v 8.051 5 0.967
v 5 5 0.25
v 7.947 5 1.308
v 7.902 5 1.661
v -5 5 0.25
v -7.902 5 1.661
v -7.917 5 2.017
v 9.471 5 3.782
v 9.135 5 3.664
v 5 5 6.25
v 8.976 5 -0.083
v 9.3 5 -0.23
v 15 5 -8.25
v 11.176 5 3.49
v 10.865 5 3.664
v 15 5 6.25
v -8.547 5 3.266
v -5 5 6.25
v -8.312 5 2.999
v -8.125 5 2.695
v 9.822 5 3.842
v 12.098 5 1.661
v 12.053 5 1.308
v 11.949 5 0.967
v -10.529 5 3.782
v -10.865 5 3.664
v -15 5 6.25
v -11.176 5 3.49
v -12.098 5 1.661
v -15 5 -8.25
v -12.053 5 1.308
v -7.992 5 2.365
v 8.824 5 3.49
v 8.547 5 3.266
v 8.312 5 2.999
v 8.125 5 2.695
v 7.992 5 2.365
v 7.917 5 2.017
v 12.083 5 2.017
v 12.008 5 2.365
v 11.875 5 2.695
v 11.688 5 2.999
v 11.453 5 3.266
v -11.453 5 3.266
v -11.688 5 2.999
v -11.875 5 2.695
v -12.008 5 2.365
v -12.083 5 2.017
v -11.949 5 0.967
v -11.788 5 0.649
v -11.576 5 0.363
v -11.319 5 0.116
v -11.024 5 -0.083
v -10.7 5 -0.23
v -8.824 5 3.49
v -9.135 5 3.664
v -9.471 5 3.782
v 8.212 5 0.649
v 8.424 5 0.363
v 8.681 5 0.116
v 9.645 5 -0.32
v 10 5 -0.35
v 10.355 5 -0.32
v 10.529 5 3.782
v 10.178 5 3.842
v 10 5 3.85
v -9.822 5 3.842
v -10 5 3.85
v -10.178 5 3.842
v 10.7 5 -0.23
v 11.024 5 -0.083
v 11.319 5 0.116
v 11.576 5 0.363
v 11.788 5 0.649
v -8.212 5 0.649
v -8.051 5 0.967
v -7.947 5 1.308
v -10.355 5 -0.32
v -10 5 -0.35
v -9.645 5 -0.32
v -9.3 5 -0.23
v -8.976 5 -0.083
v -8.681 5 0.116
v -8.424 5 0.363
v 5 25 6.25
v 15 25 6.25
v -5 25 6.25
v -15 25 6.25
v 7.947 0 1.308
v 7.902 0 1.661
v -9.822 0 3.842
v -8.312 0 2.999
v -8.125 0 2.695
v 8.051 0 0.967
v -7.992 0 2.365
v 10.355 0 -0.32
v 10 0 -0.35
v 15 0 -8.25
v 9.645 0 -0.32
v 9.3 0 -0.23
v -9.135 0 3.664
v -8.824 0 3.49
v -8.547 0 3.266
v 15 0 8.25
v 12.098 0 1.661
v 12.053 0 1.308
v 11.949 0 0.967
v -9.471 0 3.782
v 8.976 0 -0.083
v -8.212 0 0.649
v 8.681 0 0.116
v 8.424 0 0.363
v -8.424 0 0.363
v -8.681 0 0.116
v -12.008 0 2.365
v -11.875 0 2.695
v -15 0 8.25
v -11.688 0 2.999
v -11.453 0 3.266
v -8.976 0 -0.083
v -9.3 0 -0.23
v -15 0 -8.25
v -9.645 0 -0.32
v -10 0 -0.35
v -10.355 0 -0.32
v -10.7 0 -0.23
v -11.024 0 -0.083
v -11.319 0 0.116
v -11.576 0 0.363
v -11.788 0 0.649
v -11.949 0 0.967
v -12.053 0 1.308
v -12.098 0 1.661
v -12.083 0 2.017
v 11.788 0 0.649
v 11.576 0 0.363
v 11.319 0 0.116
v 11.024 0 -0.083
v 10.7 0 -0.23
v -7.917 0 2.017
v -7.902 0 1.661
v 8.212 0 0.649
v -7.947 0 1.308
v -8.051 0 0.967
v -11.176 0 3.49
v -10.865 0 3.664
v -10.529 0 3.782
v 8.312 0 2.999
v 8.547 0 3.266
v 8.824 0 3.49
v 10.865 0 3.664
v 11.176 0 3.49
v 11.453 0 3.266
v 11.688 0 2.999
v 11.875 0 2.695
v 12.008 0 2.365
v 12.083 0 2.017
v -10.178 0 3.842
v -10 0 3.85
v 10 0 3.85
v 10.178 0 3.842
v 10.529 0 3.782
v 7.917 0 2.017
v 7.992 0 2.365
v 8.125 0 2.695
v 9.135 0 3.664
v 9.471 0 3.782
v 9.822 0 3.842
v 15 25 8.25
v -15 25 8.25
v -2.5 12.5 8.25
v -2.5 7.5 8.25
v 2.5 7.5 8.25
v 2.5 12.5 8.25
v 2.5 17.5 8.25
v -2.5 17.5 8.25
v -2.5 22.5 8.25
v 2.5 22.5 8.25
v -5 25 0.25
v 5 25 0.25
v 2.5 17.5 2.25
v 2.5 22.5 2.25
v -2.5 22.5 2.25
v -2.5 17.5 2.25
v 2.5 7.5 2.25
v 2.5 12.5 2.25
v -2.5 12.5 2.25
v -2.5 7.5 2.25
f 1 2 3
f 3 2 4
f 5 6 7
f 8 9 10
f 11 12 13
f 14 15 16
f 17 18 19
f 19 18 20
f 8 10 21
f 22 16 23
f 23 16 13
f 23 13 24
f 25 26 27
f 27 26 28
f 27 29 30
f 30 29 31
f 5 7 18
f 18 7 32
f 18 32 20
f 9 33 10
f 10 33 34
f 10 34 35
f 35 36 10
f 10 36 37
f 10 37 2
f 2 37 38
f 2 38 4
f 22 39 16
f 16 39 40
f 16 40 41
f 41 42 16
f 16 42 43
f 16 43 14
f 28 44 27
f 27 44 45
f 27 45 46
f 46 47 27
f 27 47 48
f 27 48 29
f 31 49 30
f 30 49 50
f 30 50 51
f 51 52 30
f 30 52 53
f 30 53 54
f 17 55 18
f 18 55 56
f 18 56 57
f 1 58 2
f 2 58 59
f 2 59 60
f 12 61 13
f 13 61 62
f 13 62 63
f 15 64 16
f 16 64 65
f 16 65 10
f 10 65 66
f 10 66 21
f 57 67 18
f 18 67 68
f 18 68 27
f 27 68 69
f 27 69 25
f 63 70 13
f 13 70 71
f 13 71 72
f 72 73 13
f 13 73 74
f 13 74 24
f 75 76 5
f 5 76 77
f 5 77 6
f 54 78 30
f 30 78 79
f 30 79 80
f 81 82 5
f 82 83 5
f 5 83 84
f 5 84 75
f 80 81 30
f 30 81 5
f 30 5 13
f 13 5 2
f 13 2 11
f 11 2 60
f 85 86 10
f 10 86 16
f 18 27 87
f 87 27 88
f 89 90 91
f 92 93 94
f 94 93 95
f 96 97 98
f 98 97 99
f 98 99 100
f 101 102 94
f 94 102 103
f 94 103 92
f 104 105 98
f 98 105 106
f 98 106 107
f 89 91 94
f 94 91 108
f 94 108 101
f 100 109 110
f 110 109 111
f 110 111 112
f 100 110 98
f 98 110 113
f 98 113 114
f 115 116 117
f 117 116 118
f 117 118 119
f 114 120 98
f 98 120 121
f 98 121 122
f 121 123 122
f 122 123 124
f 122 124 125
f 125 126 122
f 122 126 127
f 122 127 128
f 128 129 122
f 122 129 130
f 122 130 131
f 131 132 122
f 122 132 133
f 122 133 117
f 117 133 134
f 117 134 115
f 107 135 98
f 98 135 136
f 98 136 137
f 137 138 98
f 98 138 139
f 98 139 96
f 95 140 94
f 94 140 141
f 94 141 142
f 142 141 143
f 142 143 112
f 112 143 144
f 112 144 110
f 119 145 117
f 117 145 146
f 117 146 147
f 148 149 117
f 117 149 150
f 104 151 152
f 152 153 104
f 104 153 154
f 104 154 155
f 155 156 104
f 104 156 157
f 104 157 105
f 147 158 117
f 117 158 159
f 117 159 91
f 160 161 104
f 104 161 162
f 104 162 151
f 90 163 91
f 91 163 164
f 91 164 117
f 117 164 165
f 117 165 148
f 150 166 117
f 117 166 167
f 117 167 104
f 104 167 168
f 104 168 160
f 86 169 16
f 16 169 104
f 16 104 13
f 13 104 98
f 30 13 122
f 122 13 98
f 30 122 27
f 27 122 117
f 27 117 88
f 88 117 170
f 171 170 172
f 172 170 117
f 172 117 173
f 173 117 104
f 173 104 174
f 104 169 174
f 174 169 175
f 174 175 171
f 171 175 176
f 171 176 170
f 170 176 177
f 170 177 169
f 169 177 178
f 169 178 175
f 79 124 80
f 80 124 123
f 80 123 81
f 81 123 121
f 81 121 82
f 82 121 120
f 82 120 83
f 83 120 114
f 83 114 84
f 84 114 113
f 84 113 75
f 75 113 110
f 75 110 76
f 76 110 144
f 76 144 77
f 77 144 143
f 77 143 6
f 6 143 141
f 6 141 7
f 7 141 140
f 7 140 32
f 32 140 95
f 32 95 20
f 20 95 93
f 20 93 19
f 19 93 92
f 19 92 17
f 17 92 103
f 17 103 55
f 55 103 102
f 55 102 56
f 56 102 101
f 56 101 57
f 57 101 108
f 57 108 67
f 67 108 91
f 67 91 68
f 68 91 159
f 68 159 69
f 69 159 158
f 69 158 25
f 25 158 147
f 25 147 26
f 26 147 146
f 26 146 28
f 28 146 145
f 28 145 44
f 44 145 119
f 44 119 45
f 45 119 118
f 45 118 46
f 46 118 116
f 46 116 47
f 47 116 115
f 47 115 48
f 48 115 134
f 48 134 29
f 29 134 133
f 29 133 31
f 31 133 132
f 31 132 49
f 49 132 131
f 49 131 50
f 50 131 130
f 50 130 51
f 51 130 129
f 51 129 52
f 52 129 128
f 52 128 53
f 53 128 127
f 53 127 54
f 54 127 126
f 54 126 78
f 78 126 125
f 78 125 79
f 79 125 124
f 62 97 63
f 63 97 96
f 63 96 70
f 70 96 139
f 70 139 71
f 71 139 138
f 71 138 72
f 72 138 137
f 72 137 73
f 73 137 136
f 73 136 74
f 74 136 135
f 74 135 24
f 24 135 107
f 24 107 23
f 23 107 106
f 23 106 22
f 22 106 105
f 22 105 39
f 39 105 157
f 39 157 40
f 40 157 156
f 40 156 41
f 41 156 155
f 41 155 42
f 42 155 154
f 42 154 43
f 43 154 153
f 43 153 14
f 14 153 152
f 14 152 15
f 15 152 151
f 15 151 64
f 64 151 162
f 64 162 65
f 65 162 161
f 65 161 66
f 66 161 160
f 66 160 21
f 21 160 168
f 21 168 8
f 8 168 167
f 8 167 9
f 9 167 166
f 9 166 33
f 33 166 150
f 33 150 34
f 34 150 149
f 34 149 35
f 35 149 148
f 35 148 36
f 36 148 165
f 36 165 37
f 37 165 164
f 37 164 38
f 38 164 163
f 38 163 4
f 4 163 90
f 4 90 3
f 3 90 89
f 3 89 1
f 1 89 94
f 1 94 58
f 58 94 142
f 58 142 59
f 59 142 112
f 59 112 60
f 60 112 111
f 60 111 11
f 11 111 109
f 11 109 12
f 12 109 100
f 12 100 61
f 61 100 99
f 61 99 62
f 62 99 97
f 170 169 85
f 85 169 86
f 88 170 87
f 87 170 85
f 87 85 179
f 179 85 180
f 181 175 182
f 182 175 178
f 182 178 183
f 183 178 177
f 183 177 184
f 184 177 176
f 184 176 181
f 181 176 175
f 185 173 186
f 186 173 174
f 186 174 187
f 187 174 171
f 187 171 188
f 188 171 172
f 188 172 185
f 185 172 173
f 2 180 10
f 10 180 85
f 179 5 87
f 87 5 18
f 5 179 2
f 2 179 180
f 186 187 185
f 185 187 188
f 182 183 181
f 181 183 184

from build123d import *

# Parameters (mm, degrees)
SKETCH1_W           = 30
SKETCH1_H           = 16.5
SKETCH1_R           = 2.1
BOSS_EXTRUDE1_DEPTH = 5
SKETCH2_W           = 30
SKETCH2_H           = 20
BOSS_EXTRUDE2_DEPTH = 2
SKETCH3_W           = 5
SKETCH3_H           = 5
CUT_EXTRUDE1_DEPTH  = 3
SKETCH4_W           = 10
SKETCH4_H           = 20
SKETCH4_W_2         = 5
SKETCH4_H_2         = 5
BOSS_EXTRUDE3_DEPTH = 4
SKETCH5_W           = 10
SKETCH5_H           = 20
BOSS_EXTRUDE4_DEPTH = 2


with BuildPart() as part:
    # Sketch1 → Boss-Extrude1 (new body)
    with BuildSketch(Plane(origin=(0, 0, 0), x_dir=(1, 0, 0), z_dir=(0, 1, 0))):
        Rectangle(SKETCH1_W, SKETCH1_H)
        with Locations((-10, -1.75)):
            Circle(SKETCH1_R, mode=Mode.SUBTRACT)
        with Locations((10, -1.75)):
            Circle(SKETCH1_R, mode=Mode.SUBTRACT)
    extrude(amount=BOSS_EXTRUDE1_DEPTH)

    # Sketch2 → Boss-Extrude2 (add)
    with BuildSketch(Plane.XY.offset(8.25)):
        with Locations((0, 15)):
            Rectangle(SKETCH2_W, SKETCH2_H)
    extrude(amount=-BOSS_EXTRUDE2_DEPTH)

    # Sketch3 → Cut-Extrude1 (cut, through all)
    with BuildSketch(Plane(origin=(0, 0, 6.25), x_dir=(-1, 0, 0), z_dir=(0, 0, -1))):
        with Locations((0, 10)):
            Rectangle(SKETCH3_W, SKETCH3_H)
        with Locations((0, 20)):
            Rectangle(SKETCH3_W, SKETCH3_H)
    extrude(amount=-CUT_EXTRUDE1_DEPTH, mode=Mode.SUBTRACT)

    # Sketch4 → Boss-Extrude3 (add)
    with BuildSketch(Plane(origin=(0, 0, 6.25), x_dir=(-1, 0, 0), z_dir=(0, 0, -1))):
        with Locations((0, 15)):
            Rectangle(SKETCH4_W, SKETCH4_H)
        with Locations((0, 20)):
            Rectangle(SKETCH4_W_2, SKETCH4_H_2, mode=Mode.SUBTRACT)
        with Locations((0, 10)):
            Rectangle(SKETCH4_W_2, SKETCH4_H_2, mode=Mode.SUBTRACT)
    extrude(amount=BOSS_EXTRUDE3_DEPTH)

    # Sketch5 → Boss-Extrude4 (add)
    with BuildSketch(Plane(origin=(0, 0, 2.25), x_dir=(-1, 0, 0), z_dir=(0, 0, -1))):
        with Locations((0, 15)):
            Rectangle(SKETCH5_W, SKETCH5_H)
    extrude(amount=BOSS_EXTRUDE4_DEPTH)


solid = part.part
